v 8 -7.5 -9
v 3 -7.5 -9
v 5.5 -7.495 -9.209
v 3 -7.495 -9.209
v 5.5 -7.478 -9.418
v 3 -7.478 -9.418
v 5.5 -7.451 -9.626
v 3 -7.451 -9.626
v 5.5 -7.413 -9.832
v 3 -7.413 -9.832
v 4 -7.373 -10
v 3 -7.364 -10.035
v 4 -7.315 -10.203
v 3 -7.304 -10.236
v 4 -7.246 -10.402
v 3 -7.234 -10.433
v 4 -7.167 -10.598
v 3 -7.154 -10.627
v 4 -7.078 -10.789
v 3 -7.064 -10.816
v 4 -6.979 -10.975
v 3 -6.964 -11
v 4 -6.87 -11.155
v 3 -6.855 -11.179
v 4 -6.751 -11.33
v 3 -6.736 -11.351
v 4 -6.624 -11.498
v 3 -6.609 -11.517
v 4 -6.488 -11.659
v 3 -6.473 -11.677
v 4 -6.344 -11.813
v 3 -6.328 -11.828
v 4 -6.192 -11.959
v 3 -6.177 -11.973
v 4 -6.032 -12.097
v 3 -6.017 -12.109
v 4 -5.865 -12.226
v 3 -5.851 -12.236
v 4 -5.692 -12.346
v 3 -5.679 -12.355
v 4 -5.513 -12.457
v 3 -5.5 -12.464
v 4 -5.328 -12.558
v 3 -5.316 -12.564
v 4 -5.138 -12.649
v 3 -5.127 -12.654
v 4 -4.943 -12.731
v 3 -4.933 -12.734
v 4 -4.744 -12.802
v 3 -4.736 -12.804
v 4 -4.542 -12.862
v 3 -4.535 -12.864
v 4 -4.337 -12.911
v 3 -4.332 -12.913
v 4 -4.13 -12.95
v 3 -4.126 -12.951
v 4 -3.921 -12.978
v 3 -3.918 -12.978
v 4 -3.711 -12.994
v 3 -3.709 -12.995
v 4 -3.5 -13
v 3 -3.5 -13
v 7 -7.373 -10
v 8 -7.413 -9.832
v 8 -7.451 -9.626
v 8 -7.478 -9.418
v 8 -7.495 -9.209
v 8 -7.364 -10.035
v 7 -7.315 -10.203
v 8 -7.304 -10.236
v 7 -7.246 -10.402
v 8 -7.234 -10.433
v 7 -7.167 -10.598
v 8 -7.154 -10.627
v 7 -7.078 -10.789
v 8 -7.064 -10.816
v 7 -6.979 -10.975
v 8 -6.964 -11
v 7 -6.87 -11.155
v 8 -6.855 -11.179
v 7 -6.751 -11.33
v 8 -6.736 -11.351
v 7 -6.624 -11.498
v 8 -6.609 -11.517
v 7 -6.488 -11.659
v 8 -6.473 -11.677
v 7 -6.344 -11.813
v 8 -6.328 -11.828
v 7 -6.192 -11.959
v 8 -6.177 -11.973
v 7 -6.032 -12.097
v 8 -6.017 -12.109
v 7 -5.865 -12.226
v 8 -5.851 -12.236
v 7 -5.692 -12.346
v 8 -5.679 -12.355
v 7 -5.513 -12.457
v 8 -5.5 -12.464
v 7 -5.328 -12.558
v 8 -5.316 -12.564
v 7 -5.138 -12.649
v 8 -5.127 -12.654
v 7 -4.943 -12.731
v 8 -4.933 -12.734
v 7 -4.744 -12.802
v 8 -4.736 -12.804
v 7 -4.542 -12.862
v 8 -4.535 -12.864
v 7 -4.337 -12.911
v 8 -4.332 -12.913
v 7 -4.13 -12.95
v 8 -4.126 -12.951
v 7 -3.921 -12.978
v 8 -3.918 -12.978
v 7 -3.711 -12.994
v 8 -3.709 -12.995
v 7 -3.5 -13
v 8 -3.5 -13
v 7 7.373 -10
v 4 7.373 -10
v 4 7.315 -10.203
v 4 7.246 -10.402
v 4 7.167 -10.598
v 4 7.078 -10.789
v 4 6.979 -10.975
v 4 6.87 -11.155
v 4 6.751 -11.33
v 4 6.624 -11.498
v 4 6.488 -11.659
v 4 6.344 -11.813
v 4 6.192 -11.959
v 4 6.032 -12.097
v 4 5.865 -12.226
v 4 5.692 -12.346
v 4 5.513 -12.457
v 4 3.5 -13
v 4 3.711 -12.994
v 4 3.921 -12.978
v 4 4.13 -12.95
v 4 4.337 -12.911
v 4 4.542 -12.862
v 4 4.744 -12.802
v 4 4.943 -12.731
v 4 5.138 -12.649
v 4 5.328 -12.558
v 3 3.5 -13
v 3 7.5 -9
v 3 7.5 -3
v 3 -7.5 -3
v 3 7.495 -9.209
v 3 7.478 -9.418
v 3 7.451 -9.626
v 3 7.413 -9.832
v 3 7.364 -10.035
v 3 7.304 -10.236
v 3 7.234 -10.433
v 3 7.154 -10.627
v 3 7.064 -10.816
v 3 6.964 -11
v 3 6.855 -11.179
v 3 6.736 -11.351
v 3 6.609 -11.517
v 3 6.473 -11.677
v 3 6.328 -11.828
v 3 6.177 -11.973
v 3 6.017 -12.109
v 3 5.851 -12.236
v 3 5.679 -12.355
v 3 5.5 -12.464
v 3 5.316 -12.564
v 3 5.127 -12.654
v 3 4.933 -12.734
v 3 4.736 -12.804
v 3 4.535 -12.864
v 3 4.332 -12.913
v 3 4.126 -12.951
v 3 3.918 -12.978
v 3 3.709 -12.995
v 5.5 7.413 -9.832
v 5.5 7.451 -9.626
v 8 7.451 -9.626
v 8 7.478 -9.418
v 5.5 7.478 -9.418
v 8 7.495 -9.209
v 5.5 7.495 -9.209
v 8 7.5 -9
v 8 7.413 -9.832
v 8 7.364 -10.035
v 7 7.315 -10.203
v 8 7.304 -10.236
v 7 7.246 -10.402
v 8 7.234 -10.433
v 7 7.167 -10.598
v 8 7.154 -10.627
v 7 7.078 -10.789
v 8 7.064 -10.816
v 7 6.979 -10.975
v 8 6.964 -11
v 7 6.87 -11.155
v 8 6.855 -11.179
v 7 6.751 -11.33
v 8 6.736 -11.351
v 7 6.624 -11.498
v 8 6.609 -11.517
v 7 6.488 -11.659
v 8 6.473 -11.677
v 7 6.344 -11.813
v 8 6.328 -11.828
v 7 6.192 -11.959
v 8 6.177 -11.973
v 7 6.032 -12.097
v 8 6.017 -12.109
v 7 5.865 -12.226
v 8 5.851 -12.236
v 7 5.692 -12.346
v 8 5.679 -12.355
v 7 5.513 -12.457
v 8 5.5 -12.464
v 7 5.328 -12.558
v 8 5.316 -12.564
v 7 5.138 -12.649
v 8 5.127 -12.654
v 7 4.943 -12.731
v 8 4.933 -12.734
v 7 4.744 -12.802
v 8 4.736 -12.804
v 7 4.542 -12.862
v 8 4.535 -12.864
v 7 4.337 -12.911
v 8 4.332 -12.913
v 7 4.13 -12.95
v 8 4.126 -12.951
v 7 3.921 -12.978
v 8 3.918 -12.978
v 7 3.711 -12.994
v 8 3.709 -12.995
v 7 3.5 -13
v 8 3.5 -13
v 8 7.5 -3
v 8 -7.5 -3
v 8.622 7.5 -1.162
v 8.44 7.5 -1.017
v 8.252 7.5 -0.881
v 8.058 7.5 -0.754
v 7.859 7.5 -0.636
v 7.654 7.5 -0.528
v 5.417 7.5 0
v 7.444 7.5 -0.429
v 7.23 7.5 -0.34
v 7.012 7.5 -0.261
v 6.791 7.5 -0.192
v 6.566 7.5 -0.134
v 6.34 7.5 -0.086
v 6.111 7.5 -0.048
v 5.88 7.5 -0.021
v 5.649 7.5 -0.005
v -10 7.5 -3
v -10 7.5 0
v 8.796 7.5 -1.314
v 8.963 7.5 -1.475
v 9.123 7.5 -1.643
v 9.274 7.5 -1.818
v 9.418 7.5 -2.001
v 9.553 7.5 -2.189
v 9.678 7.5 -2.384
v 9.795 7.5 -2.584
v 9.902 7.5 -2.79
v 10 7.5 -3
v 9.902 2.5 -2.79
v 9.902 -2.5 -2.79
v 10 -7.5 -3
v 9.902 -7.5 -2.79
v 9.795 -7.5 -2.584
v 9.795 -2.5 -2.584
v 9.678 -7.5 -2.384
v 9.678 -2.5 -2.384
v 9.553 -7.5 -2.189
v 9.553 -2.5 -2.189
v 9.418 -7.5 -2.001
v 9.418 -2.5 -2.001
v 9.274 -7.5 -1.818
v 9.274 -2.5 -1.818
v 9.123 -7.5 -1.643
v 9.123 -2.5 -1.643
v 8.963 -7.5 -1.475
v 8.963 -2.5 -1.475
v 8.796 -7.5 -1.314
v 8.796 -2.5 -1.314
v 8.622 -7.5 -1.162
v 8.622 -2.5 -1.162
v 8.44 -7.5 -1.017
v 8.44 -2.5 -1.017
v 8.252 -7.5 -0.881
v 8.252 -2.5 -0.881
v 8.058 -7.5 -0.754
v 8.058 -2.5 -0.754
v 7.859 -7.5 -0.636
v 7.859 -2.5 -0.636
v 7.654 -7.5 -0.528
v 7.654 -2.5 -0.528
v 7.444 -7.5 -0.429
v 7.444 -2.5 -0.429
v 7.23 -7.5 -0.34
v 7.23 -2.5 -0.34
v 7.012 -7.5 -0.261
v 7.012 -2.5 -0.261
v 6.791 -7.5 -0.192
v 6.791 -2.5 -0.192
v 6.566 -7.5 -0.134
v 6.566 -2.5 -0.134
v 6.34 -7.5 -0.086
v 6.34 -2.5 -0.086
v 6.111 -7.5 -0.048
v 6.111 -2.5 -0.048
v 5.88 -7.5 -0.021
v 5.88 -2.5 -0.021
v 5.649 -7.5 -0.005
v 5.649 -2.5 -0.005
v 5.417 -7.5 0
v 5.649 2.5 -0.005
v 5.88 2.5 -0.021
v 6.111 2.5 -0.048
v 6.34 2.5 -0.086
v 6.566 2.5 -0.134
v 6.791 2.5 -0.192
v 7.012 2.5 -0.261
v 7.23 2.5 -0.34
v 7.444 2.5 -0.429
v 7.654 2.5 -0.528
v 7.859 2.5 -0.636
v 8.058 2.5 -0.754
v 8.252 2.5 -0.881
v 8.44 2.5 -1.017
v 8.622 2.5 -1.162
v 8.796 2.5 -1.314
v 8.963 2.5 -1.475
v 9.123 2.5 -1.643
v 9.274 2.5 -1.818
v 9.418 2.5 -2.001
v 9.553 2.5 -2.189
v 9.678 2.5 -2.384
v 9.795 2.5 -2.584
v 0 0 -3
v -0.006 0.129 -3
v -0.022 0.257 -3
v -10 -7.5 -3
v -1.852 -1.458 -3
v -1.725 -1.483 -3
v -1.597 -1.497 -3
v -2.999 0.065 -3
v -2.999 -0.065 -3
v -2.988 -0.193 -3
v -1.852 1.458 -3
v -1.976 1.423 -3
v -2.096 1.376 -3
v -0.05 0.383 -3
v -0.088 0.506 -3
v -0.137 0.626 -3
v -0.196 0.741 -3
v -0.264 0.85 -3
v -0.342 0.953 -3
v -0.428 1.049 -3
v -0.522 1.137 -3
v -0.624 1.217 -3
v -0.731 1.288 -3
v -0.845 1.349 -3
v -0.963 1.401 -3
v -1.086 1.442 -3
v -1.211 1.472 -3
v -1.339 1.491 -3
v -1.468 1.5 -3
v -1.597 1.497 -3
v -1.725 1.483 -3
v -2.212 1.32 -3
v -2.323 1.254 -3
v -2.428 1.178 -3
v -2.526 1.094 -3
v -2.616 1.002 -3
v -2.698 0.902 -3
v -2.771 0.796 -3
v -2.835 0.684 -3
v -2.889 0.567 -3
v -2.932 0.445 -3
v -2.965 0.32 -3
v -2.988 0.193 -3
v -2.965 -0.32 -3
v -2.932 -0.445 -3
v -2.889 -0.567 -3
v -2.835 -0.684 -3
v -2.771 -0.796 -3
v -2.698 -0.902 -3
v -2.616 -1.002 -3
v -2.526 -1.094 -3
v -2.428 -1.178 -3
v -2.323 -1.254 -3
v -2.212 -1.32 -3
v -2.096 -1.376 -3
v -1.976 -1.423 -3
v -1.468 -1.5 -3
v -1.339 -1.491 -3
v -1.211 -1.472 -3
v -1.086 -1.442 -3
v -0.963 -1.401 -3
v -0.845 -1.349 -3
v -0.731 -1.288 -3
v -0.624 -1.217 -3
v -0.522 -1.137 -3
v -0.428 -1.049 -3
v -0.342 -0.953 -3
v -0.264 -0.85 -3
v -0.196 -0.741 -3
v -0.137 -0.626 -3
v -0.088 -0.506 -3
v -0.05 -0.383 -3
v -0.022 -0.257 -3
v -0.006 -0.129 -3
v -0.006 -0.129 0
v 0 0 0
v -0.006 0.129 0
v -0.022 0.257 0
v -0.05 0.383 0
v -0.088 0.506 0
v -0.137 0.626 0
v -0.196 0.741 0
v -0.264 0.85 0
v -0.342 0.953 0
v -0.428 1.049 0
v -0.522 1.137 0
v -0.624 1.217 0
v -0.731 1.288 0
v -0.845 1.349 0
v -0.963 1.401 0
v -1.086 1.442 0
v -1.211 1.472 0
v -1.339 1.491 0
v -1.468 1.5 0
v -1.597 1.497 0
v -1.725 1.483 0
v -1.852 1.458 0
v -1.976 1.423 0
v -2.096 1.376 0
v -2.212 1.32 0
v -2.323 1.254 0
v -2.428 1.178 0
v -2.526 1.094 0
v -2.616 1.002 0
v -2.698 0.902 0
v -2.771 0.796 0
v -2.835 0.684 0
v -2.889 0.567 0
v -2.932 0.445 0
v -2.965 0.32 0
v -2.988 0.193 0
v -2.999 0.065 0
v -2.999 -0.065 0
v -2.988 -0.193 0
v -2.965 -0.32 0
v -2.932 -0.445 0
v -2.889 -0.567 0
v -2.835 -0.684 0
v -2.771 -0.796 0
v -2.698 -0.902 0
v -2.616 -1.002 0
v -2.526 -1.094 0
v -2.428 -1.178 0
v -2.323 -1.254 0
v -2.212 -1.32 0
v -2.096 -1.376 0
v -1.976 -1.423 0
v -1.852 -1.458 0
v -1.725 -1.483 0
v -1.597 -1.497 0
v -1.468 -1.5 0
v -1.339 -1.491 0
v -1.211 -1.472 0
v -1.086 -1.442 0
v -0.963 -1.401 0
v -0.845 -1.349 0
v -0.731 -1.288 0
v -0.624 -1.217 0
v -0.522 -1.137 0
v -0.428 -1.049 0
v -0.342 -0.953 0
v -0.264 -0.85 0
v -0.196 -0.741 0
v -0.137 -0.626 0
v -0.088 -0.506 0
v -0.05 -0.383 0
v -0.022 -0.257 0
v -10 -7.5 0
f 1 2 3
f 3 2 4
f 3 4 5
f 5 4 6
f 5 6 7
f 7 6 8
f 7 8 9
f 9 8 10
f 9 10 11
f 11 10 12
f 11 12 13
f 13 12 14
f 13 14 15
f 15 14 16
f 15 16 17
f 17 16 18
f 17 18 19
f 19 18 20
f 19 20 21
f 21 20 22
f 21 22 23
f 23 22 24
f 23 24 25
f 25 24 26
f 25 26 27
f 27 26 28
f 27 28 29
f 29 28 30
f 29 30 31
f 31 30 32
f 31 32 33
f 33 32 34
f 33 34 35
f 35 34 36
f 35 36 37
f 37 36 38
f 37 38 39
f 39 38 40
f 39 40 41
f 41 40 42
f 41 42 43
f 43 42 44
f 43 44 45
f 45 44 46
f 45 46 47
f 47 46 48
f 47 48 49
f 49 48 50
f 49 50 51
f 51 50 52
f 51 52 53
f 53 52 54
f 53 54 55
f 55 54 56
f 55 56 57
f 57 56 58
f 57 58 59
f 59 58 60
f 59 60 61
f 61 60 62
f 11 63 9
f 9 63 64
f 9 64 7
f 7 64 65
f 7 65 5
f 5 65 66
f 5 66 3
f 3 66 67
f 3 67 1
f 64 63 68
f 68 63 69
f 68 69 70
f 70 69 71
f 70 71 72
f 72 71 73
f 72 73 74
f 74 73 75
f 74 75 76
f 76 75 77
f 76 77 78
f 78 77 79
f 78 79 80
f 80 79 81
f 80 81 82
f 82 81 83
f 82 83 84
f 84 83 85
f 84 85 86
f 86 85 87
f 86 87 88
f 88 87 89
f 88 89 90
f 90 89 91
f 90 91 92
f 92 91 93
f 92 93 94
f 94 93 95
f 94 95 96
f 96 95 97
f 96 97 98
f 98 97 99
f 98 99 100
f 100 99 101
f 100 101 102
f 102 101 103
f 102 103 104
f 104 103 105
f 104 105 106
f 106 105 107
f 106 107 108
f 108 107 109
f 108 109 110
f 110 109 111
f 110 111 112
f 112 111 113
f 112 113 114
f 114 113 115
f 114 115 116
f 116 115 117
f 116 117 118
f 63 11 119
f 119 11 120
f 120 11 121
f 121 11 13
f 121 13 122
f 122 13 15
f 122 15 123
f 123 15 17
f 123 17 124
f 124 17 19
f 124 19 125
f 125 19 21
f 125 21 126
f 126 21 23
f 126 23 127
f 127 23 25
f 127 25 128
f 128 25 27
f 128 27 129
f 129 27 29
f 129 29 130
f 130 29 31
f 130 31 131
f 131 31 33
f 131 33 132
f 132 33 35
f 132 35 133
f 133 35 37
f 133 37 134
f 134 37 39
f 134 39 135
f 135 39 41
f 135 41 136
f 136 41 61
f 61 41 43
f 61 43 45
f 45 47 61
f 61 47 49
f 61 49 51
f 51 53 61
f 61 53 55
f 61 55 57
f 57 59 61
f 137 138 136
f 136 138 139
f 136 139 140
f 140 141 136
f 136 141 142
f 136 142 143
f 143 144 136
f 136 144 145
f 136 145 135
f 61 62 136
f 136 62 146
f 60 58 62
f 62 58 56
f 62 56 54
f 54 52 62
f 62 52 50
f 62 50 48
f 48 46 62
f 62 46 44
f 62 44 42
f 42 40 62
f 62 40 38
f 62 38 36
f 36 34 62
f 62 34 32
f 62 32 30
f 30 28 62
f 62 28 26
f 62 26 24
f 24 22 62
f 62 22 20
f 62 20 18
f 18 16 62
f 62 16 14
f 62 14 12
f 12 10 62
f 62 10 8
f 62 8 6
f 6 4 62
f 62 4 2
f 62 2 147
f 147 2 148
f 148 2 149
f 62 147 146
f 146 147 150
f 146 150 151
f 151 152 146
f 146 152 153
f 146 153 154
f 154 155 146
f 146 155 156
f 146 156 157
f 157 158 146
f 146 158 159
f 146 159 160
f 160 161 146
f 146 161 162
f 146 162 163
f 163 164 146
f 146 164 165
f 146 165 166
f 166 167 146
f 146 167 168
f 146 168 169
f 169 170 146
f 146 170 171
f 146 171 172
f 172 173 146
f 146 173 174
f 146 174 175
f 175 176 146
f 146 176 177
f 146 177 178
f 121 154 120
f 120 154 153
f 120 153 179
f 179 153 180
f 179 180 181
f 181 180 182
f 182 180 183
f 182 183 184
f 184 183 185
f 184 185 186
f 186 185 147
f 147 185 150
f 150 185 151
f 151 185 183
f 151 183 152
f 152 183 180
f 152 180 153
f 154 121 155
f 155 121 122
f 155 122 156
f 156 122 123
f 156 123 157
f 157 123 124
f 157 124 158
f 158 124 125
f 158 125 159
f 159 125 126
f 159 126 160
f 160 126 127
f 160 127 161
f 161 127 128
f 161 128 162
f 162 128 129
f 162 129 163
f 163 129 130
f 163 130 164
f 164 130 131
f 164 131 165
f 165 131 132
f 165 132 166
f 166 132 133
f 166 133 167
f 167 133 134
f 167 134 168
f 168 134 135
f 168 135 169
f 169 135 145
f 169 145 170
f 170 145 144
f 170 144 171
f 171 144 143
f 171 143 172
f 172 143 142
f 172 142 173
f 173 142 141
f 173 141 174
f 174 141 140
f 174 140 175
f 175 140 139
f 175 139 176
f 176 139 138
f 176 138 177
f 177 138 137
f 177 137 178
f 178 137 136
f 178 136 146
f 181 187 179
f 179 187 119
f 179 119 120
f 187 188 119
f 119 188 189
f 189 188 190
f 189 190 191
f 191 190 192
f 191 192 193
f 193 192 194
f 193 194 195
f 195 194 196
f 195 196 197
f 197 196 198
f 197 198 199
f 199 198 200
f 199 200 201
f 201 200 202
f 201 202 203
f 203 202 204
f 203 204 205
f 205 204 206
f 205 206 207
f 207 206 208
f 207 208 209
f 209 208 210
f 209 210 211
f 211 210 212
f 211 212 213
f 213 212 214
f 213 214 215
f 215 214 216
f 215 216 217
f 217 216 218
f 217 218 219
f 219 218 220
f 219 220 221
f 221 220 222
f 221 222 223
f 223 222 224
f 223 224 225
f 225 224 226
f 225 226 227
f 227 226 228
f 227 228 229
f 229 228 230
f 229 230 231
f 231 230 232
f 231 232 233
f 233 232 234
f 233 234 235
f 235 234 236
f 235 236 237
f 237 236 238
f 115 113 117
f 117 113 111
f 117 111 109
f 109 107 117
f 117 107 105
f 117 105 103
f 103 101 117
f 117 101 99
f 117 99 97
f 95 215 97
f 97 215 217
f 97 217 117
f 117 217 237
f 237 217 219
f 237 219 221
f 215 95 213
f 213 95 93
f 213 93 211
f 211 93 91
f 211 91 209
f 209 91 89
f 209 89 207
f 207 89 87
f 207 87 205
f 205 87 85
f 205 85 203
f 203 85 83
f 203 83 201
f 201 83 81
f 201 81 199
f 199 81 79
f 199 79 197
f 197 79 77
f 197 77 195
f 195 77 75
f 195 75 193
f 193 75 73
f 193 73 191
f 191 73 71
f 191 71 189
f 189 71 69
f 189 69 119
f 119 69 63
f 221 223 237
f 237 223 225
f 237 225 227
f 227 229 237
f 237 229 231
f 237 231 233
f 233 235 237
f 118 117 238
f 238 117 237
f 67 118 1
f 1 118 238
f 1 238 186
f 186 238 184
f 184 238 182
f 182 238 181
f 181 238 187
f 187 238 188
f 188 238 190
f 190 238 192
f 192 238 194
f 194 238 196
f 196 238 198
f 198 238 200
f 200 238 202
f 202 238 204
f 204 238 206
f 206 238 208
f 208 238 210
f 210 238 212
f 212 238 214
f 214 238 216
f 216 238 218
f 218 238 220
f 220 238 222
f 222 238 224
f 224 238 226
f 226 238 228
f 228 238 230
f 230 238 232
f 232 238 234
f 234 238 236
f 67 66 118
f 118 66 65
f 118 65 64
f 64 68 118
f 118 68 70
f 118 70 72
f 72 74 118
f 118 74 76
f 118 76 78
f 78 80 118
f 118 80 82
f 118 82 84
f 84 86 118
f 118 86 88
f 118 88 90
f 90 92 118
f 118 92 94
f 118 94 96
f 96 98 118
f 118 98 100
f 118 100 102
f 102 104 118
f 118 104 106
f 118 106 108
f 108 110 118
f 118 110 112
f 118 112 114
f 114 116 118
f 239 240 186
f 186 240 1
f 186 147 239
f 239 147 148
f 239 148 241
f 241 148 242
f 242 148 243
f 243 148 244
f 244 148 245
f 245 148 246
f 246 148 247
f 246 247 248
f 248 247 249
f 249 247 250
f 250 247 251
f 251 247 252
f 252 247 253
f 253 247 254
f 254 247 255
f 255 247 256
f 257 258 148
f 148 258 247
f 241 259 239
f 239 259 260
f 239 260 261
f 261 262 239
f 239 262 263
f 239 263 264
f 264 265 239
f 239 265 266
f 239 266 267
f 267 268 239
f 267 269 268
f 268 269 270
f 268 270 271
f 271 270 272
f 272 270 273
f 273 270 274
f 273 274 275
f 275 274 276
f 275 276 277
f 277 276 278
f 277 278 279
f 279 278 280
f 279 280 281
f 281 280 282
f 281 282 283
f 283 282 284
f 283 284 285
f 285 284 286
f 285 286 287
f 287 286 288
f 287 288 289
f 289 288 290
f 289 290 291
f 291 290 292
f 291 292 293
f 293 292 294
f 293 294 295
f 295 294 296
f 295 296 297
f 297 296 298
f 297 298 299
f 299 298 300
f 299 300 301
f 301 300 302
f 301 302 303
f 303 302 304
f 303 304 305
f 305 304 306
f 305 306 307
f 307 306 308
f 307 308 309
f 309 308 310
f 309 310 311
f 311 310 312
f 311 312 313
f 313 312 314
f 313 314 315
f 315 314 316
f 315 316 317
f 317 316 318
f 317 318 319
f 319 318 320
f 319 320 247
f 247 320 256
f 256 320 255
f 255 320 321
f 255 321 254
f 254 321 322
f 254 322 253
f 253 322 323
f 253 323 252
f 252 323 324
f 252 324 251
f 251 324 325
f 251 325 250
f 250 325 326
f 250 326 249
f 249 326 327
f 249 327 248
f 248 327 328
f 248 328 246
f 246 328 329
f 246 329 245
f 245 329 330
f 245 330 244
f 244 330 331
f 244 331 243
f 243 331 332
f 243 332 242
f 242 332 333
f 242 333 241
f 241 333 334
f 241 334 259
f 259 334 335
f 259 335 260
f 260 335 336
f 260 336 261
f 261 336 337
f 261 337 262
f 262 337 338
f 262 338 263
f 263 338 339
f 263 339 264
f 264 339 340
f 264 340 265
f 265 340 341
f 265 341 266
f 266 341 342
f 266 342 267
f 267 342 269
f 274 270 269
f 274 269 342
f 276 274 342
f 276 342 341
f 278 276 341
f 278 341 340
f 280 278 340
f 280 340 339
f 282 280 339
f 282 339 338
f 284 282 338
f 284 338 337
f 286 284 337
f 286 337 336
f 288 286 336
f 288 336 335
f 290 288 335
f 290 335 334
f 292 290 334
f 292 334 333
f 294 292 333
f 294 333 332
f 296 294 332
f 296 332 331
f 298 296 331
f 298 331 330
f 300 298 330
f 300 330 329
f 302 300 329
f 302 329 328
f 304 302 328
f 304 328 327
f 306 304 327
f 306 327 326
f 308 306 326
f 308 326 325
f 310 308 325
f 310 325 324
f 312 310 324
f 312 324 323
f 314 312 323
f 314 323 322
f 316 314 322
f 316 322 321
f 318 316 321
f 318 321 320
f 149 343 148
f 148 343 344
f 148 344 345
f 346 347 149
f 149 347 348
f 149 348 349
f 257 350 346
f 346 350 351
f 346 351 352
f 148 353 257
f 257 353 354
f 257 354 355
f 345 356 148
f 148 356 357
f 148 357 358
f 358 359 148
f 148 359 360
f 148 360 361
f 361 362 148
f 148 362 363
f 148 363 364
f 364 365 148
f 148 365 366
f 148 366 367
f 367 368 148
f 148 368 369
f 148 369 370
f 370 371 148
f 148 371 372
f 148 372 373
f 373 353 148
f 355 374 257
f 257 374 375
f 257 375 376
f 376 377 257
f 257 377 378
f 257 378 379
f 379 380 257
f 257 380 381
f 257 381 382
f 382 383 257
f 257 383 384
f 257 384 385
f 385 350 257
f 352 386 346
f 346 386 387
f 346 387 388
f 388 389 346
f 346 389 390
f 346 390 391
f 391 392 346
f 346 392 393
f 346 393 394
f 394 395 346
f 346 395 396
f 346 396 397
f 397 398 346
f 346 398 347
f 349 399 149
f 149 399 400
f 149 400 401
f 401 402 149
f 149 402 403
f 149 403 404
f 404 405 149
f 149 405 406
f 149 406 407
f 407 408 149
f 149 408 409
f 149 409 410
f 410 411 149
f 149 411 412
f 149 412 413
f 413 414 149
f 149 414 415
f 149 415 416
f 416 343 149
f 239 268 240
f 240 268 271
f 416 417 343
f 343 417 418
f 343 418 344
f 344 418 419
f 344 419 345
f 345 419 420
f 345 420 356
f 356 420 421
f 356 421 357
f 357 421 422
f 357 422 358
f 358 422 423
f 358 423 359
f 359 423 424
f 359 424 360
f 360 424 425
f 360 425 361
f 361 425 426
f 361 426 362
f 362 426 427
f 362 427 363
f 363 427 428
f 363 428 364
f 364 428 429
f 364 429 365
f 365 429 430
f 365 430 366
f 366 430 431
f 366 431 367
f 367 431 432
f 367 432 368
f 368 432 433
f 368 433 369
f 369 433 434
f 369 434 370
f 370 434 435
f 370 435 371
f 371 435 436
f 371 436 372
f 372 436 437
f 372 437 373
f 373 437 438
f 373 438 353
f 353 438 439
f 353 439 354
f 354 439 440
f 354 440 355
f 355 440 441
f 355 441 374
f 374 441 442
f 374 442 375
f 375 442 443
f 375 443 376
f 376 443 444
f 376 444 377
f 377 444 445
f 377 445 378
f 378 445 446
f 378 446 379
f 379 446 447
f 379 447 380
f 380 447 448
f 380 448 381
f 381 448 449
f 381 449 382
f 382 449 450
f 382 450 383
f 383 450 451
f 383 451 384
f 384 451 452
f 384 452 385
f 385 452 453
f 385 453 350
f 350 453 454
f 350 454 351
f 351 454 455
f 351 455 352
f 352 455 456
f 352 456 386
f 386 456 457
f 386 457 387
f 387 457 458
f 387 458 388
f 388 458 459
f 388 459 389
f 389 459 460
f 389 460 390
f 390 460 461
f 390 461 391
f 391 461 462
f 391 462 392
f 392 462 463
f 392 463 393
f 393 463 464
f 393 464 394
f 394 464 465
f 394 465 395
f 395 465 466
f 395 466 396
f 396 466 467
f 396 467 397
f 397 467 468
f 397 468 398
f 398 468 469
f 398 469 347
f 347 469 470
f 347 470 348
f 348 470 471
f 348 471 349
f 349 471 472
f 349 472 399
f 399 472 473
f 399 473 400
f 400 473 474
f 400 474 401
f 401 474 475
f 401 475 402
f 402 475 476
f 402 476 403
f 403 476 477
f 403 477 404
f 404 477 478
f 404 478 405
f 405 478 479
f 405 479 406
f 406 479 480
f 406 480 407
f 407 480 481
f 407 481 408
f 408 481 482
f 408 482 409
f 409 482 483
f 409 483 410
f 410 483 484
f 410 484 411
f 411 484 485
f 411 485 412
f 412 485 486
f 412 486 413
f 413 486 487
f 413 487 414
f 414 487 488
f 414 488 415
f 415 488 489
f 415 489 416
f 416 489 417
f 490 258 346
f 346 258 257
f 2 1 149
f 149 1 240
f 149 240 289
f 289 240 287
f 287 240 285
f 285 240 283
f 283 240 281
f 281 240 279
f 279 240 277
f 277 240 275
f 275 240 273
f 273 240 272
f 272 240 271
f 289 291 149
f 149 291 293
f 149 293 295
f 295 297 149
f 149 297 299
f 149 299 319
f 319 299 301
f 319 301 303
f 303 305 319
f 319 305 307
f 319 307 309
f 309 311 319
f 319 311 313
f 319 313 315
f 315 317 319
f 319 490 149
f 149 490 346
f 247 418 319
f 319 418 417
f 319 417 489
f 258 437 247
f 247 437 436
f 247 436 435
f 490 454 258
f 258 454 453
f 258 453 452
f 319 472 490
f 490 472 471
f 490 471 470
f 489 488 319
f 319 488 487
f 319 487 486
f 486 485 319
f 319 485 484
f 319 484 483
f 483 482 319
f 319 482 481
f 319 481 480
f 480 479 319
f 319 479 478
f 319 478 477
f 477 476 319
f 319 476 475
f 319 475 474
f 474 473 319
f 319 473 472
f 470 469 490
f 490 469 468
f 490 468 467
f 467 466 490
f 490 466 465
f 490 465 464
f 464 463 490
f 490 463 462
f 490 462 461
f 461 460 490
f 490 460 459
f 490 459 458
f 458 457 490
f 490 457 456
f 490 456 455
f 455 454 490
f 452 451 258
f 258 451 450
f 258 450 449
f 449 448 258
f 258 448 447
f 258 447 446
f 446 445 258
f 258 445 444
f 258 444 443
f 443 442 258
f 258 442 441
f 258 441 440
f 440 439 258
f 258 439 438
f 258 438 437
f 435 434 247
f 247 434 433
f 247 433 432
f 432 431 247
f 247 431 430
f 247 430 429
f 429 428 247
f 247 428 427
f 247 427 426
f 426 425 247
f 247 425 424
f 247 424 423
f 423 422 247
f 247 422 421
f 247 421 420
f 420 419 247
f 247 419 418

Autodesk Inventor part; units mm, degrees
ref_plane "YZ Plane" through (0, 0, 0) normal (1, 0, 0) x (0, 1, 0)
ref_plane "XZ Plane" through (0, 0, 0) normal (0, 1, 0) x (-1, 0, 0)
ref_plane "XY Plane" through (0, 0, 0) normal (0, 0, 1) x (1, 0, 0)
sketch "Esboço1" plane through (0, 0, 0) normal (0, 0, 1) x (1, 0, 0)
  line L0 (-10, 7.5) -> (10, 7.5)
  line L1 (10, 7.5) -> (10, -7.5)
  line L2 (10, -7.5) -> (-10, -7.5)
  line L3 (-10, -7.5) -> (-10, 7.5)
  line L4 (-10, 7.5) -> (10, -7.5) construction
  line L5 (10, 7.5) -> (-10, -7.5) construction
  circle A0 centre (-1.5, 0) radius 1.5
  point P0 (0, 0)
  dimension "d0" = 20
  dimension "d1" = 15
  dimension "d13" = 3
  dimension "d14" = 1.5
  dimension "d15" = 7.5
extrude "Extrusão1" add sketch "Esboço1" against normal blind 3
sketch "Esboço2" plane through (0, 0, -3) normal (0, 0, -1) x (-1, 0, 0)
  line L0 (10, 7.5) -> (-10, 7.5) projected
  line L1 (-4, 7.5) -> (-4, -7.5247)
  line L2 (-7, 7.5) -> (-7, -7.5)
  line L3 (-10, -7.5) -> (10, -7.5) projected
  line L4 (-3, 7.5) -> (-3, -7.5247)
  line L5 (-8, 7.5) -> (-8, -7.5)
  point P0 (0, 0)
  point P1 (0, 0)
  point P2 (-3, -7.5)
  point P3 (-4, -7.5)
  dimension "d6" = 3
  dimension "d7" = 1
  dimension "d8" = 1
  dimension "d16" = 7
extrude "Extrusão2" add sketch "Esboço2" along normal blind 10 contours L4 L3 L1 L0 | L2 L3 L5 L0
sketch "Esboço3" plane through (-10, 7.5, 0) normal (0, 1, 0) x (1, 0, 0)
  point P0 (10, 0)
fillet "Arredondamento1" radius 5 1 edges at (10, 0, 0)
sketch "Esboço4" plane through (0, 0, -3) normal (0, 0, -1) x (-1, 0, 0)
  line L0 (-7, 7.5) -> (-7, -7.5) projected
  line L1 (-7, -7.5) -> (-4, -7.5) projected
  line L2 (-4, -7.5) -> (-4, 7.5) projected
  line L3 (-4, 7.5) -> (-7, 7.5) projected
  point P0 (0, 0)
extrude "Extrusão3" add sketch "Esboço4" along normal blind 7
fillet "Arredondamento3" radius 4 4 edges at (3.5, 7.5, -13) (7.5, 7.5, -13) (3.5, -7.5, -13) (7.5, -7.5, -13)
